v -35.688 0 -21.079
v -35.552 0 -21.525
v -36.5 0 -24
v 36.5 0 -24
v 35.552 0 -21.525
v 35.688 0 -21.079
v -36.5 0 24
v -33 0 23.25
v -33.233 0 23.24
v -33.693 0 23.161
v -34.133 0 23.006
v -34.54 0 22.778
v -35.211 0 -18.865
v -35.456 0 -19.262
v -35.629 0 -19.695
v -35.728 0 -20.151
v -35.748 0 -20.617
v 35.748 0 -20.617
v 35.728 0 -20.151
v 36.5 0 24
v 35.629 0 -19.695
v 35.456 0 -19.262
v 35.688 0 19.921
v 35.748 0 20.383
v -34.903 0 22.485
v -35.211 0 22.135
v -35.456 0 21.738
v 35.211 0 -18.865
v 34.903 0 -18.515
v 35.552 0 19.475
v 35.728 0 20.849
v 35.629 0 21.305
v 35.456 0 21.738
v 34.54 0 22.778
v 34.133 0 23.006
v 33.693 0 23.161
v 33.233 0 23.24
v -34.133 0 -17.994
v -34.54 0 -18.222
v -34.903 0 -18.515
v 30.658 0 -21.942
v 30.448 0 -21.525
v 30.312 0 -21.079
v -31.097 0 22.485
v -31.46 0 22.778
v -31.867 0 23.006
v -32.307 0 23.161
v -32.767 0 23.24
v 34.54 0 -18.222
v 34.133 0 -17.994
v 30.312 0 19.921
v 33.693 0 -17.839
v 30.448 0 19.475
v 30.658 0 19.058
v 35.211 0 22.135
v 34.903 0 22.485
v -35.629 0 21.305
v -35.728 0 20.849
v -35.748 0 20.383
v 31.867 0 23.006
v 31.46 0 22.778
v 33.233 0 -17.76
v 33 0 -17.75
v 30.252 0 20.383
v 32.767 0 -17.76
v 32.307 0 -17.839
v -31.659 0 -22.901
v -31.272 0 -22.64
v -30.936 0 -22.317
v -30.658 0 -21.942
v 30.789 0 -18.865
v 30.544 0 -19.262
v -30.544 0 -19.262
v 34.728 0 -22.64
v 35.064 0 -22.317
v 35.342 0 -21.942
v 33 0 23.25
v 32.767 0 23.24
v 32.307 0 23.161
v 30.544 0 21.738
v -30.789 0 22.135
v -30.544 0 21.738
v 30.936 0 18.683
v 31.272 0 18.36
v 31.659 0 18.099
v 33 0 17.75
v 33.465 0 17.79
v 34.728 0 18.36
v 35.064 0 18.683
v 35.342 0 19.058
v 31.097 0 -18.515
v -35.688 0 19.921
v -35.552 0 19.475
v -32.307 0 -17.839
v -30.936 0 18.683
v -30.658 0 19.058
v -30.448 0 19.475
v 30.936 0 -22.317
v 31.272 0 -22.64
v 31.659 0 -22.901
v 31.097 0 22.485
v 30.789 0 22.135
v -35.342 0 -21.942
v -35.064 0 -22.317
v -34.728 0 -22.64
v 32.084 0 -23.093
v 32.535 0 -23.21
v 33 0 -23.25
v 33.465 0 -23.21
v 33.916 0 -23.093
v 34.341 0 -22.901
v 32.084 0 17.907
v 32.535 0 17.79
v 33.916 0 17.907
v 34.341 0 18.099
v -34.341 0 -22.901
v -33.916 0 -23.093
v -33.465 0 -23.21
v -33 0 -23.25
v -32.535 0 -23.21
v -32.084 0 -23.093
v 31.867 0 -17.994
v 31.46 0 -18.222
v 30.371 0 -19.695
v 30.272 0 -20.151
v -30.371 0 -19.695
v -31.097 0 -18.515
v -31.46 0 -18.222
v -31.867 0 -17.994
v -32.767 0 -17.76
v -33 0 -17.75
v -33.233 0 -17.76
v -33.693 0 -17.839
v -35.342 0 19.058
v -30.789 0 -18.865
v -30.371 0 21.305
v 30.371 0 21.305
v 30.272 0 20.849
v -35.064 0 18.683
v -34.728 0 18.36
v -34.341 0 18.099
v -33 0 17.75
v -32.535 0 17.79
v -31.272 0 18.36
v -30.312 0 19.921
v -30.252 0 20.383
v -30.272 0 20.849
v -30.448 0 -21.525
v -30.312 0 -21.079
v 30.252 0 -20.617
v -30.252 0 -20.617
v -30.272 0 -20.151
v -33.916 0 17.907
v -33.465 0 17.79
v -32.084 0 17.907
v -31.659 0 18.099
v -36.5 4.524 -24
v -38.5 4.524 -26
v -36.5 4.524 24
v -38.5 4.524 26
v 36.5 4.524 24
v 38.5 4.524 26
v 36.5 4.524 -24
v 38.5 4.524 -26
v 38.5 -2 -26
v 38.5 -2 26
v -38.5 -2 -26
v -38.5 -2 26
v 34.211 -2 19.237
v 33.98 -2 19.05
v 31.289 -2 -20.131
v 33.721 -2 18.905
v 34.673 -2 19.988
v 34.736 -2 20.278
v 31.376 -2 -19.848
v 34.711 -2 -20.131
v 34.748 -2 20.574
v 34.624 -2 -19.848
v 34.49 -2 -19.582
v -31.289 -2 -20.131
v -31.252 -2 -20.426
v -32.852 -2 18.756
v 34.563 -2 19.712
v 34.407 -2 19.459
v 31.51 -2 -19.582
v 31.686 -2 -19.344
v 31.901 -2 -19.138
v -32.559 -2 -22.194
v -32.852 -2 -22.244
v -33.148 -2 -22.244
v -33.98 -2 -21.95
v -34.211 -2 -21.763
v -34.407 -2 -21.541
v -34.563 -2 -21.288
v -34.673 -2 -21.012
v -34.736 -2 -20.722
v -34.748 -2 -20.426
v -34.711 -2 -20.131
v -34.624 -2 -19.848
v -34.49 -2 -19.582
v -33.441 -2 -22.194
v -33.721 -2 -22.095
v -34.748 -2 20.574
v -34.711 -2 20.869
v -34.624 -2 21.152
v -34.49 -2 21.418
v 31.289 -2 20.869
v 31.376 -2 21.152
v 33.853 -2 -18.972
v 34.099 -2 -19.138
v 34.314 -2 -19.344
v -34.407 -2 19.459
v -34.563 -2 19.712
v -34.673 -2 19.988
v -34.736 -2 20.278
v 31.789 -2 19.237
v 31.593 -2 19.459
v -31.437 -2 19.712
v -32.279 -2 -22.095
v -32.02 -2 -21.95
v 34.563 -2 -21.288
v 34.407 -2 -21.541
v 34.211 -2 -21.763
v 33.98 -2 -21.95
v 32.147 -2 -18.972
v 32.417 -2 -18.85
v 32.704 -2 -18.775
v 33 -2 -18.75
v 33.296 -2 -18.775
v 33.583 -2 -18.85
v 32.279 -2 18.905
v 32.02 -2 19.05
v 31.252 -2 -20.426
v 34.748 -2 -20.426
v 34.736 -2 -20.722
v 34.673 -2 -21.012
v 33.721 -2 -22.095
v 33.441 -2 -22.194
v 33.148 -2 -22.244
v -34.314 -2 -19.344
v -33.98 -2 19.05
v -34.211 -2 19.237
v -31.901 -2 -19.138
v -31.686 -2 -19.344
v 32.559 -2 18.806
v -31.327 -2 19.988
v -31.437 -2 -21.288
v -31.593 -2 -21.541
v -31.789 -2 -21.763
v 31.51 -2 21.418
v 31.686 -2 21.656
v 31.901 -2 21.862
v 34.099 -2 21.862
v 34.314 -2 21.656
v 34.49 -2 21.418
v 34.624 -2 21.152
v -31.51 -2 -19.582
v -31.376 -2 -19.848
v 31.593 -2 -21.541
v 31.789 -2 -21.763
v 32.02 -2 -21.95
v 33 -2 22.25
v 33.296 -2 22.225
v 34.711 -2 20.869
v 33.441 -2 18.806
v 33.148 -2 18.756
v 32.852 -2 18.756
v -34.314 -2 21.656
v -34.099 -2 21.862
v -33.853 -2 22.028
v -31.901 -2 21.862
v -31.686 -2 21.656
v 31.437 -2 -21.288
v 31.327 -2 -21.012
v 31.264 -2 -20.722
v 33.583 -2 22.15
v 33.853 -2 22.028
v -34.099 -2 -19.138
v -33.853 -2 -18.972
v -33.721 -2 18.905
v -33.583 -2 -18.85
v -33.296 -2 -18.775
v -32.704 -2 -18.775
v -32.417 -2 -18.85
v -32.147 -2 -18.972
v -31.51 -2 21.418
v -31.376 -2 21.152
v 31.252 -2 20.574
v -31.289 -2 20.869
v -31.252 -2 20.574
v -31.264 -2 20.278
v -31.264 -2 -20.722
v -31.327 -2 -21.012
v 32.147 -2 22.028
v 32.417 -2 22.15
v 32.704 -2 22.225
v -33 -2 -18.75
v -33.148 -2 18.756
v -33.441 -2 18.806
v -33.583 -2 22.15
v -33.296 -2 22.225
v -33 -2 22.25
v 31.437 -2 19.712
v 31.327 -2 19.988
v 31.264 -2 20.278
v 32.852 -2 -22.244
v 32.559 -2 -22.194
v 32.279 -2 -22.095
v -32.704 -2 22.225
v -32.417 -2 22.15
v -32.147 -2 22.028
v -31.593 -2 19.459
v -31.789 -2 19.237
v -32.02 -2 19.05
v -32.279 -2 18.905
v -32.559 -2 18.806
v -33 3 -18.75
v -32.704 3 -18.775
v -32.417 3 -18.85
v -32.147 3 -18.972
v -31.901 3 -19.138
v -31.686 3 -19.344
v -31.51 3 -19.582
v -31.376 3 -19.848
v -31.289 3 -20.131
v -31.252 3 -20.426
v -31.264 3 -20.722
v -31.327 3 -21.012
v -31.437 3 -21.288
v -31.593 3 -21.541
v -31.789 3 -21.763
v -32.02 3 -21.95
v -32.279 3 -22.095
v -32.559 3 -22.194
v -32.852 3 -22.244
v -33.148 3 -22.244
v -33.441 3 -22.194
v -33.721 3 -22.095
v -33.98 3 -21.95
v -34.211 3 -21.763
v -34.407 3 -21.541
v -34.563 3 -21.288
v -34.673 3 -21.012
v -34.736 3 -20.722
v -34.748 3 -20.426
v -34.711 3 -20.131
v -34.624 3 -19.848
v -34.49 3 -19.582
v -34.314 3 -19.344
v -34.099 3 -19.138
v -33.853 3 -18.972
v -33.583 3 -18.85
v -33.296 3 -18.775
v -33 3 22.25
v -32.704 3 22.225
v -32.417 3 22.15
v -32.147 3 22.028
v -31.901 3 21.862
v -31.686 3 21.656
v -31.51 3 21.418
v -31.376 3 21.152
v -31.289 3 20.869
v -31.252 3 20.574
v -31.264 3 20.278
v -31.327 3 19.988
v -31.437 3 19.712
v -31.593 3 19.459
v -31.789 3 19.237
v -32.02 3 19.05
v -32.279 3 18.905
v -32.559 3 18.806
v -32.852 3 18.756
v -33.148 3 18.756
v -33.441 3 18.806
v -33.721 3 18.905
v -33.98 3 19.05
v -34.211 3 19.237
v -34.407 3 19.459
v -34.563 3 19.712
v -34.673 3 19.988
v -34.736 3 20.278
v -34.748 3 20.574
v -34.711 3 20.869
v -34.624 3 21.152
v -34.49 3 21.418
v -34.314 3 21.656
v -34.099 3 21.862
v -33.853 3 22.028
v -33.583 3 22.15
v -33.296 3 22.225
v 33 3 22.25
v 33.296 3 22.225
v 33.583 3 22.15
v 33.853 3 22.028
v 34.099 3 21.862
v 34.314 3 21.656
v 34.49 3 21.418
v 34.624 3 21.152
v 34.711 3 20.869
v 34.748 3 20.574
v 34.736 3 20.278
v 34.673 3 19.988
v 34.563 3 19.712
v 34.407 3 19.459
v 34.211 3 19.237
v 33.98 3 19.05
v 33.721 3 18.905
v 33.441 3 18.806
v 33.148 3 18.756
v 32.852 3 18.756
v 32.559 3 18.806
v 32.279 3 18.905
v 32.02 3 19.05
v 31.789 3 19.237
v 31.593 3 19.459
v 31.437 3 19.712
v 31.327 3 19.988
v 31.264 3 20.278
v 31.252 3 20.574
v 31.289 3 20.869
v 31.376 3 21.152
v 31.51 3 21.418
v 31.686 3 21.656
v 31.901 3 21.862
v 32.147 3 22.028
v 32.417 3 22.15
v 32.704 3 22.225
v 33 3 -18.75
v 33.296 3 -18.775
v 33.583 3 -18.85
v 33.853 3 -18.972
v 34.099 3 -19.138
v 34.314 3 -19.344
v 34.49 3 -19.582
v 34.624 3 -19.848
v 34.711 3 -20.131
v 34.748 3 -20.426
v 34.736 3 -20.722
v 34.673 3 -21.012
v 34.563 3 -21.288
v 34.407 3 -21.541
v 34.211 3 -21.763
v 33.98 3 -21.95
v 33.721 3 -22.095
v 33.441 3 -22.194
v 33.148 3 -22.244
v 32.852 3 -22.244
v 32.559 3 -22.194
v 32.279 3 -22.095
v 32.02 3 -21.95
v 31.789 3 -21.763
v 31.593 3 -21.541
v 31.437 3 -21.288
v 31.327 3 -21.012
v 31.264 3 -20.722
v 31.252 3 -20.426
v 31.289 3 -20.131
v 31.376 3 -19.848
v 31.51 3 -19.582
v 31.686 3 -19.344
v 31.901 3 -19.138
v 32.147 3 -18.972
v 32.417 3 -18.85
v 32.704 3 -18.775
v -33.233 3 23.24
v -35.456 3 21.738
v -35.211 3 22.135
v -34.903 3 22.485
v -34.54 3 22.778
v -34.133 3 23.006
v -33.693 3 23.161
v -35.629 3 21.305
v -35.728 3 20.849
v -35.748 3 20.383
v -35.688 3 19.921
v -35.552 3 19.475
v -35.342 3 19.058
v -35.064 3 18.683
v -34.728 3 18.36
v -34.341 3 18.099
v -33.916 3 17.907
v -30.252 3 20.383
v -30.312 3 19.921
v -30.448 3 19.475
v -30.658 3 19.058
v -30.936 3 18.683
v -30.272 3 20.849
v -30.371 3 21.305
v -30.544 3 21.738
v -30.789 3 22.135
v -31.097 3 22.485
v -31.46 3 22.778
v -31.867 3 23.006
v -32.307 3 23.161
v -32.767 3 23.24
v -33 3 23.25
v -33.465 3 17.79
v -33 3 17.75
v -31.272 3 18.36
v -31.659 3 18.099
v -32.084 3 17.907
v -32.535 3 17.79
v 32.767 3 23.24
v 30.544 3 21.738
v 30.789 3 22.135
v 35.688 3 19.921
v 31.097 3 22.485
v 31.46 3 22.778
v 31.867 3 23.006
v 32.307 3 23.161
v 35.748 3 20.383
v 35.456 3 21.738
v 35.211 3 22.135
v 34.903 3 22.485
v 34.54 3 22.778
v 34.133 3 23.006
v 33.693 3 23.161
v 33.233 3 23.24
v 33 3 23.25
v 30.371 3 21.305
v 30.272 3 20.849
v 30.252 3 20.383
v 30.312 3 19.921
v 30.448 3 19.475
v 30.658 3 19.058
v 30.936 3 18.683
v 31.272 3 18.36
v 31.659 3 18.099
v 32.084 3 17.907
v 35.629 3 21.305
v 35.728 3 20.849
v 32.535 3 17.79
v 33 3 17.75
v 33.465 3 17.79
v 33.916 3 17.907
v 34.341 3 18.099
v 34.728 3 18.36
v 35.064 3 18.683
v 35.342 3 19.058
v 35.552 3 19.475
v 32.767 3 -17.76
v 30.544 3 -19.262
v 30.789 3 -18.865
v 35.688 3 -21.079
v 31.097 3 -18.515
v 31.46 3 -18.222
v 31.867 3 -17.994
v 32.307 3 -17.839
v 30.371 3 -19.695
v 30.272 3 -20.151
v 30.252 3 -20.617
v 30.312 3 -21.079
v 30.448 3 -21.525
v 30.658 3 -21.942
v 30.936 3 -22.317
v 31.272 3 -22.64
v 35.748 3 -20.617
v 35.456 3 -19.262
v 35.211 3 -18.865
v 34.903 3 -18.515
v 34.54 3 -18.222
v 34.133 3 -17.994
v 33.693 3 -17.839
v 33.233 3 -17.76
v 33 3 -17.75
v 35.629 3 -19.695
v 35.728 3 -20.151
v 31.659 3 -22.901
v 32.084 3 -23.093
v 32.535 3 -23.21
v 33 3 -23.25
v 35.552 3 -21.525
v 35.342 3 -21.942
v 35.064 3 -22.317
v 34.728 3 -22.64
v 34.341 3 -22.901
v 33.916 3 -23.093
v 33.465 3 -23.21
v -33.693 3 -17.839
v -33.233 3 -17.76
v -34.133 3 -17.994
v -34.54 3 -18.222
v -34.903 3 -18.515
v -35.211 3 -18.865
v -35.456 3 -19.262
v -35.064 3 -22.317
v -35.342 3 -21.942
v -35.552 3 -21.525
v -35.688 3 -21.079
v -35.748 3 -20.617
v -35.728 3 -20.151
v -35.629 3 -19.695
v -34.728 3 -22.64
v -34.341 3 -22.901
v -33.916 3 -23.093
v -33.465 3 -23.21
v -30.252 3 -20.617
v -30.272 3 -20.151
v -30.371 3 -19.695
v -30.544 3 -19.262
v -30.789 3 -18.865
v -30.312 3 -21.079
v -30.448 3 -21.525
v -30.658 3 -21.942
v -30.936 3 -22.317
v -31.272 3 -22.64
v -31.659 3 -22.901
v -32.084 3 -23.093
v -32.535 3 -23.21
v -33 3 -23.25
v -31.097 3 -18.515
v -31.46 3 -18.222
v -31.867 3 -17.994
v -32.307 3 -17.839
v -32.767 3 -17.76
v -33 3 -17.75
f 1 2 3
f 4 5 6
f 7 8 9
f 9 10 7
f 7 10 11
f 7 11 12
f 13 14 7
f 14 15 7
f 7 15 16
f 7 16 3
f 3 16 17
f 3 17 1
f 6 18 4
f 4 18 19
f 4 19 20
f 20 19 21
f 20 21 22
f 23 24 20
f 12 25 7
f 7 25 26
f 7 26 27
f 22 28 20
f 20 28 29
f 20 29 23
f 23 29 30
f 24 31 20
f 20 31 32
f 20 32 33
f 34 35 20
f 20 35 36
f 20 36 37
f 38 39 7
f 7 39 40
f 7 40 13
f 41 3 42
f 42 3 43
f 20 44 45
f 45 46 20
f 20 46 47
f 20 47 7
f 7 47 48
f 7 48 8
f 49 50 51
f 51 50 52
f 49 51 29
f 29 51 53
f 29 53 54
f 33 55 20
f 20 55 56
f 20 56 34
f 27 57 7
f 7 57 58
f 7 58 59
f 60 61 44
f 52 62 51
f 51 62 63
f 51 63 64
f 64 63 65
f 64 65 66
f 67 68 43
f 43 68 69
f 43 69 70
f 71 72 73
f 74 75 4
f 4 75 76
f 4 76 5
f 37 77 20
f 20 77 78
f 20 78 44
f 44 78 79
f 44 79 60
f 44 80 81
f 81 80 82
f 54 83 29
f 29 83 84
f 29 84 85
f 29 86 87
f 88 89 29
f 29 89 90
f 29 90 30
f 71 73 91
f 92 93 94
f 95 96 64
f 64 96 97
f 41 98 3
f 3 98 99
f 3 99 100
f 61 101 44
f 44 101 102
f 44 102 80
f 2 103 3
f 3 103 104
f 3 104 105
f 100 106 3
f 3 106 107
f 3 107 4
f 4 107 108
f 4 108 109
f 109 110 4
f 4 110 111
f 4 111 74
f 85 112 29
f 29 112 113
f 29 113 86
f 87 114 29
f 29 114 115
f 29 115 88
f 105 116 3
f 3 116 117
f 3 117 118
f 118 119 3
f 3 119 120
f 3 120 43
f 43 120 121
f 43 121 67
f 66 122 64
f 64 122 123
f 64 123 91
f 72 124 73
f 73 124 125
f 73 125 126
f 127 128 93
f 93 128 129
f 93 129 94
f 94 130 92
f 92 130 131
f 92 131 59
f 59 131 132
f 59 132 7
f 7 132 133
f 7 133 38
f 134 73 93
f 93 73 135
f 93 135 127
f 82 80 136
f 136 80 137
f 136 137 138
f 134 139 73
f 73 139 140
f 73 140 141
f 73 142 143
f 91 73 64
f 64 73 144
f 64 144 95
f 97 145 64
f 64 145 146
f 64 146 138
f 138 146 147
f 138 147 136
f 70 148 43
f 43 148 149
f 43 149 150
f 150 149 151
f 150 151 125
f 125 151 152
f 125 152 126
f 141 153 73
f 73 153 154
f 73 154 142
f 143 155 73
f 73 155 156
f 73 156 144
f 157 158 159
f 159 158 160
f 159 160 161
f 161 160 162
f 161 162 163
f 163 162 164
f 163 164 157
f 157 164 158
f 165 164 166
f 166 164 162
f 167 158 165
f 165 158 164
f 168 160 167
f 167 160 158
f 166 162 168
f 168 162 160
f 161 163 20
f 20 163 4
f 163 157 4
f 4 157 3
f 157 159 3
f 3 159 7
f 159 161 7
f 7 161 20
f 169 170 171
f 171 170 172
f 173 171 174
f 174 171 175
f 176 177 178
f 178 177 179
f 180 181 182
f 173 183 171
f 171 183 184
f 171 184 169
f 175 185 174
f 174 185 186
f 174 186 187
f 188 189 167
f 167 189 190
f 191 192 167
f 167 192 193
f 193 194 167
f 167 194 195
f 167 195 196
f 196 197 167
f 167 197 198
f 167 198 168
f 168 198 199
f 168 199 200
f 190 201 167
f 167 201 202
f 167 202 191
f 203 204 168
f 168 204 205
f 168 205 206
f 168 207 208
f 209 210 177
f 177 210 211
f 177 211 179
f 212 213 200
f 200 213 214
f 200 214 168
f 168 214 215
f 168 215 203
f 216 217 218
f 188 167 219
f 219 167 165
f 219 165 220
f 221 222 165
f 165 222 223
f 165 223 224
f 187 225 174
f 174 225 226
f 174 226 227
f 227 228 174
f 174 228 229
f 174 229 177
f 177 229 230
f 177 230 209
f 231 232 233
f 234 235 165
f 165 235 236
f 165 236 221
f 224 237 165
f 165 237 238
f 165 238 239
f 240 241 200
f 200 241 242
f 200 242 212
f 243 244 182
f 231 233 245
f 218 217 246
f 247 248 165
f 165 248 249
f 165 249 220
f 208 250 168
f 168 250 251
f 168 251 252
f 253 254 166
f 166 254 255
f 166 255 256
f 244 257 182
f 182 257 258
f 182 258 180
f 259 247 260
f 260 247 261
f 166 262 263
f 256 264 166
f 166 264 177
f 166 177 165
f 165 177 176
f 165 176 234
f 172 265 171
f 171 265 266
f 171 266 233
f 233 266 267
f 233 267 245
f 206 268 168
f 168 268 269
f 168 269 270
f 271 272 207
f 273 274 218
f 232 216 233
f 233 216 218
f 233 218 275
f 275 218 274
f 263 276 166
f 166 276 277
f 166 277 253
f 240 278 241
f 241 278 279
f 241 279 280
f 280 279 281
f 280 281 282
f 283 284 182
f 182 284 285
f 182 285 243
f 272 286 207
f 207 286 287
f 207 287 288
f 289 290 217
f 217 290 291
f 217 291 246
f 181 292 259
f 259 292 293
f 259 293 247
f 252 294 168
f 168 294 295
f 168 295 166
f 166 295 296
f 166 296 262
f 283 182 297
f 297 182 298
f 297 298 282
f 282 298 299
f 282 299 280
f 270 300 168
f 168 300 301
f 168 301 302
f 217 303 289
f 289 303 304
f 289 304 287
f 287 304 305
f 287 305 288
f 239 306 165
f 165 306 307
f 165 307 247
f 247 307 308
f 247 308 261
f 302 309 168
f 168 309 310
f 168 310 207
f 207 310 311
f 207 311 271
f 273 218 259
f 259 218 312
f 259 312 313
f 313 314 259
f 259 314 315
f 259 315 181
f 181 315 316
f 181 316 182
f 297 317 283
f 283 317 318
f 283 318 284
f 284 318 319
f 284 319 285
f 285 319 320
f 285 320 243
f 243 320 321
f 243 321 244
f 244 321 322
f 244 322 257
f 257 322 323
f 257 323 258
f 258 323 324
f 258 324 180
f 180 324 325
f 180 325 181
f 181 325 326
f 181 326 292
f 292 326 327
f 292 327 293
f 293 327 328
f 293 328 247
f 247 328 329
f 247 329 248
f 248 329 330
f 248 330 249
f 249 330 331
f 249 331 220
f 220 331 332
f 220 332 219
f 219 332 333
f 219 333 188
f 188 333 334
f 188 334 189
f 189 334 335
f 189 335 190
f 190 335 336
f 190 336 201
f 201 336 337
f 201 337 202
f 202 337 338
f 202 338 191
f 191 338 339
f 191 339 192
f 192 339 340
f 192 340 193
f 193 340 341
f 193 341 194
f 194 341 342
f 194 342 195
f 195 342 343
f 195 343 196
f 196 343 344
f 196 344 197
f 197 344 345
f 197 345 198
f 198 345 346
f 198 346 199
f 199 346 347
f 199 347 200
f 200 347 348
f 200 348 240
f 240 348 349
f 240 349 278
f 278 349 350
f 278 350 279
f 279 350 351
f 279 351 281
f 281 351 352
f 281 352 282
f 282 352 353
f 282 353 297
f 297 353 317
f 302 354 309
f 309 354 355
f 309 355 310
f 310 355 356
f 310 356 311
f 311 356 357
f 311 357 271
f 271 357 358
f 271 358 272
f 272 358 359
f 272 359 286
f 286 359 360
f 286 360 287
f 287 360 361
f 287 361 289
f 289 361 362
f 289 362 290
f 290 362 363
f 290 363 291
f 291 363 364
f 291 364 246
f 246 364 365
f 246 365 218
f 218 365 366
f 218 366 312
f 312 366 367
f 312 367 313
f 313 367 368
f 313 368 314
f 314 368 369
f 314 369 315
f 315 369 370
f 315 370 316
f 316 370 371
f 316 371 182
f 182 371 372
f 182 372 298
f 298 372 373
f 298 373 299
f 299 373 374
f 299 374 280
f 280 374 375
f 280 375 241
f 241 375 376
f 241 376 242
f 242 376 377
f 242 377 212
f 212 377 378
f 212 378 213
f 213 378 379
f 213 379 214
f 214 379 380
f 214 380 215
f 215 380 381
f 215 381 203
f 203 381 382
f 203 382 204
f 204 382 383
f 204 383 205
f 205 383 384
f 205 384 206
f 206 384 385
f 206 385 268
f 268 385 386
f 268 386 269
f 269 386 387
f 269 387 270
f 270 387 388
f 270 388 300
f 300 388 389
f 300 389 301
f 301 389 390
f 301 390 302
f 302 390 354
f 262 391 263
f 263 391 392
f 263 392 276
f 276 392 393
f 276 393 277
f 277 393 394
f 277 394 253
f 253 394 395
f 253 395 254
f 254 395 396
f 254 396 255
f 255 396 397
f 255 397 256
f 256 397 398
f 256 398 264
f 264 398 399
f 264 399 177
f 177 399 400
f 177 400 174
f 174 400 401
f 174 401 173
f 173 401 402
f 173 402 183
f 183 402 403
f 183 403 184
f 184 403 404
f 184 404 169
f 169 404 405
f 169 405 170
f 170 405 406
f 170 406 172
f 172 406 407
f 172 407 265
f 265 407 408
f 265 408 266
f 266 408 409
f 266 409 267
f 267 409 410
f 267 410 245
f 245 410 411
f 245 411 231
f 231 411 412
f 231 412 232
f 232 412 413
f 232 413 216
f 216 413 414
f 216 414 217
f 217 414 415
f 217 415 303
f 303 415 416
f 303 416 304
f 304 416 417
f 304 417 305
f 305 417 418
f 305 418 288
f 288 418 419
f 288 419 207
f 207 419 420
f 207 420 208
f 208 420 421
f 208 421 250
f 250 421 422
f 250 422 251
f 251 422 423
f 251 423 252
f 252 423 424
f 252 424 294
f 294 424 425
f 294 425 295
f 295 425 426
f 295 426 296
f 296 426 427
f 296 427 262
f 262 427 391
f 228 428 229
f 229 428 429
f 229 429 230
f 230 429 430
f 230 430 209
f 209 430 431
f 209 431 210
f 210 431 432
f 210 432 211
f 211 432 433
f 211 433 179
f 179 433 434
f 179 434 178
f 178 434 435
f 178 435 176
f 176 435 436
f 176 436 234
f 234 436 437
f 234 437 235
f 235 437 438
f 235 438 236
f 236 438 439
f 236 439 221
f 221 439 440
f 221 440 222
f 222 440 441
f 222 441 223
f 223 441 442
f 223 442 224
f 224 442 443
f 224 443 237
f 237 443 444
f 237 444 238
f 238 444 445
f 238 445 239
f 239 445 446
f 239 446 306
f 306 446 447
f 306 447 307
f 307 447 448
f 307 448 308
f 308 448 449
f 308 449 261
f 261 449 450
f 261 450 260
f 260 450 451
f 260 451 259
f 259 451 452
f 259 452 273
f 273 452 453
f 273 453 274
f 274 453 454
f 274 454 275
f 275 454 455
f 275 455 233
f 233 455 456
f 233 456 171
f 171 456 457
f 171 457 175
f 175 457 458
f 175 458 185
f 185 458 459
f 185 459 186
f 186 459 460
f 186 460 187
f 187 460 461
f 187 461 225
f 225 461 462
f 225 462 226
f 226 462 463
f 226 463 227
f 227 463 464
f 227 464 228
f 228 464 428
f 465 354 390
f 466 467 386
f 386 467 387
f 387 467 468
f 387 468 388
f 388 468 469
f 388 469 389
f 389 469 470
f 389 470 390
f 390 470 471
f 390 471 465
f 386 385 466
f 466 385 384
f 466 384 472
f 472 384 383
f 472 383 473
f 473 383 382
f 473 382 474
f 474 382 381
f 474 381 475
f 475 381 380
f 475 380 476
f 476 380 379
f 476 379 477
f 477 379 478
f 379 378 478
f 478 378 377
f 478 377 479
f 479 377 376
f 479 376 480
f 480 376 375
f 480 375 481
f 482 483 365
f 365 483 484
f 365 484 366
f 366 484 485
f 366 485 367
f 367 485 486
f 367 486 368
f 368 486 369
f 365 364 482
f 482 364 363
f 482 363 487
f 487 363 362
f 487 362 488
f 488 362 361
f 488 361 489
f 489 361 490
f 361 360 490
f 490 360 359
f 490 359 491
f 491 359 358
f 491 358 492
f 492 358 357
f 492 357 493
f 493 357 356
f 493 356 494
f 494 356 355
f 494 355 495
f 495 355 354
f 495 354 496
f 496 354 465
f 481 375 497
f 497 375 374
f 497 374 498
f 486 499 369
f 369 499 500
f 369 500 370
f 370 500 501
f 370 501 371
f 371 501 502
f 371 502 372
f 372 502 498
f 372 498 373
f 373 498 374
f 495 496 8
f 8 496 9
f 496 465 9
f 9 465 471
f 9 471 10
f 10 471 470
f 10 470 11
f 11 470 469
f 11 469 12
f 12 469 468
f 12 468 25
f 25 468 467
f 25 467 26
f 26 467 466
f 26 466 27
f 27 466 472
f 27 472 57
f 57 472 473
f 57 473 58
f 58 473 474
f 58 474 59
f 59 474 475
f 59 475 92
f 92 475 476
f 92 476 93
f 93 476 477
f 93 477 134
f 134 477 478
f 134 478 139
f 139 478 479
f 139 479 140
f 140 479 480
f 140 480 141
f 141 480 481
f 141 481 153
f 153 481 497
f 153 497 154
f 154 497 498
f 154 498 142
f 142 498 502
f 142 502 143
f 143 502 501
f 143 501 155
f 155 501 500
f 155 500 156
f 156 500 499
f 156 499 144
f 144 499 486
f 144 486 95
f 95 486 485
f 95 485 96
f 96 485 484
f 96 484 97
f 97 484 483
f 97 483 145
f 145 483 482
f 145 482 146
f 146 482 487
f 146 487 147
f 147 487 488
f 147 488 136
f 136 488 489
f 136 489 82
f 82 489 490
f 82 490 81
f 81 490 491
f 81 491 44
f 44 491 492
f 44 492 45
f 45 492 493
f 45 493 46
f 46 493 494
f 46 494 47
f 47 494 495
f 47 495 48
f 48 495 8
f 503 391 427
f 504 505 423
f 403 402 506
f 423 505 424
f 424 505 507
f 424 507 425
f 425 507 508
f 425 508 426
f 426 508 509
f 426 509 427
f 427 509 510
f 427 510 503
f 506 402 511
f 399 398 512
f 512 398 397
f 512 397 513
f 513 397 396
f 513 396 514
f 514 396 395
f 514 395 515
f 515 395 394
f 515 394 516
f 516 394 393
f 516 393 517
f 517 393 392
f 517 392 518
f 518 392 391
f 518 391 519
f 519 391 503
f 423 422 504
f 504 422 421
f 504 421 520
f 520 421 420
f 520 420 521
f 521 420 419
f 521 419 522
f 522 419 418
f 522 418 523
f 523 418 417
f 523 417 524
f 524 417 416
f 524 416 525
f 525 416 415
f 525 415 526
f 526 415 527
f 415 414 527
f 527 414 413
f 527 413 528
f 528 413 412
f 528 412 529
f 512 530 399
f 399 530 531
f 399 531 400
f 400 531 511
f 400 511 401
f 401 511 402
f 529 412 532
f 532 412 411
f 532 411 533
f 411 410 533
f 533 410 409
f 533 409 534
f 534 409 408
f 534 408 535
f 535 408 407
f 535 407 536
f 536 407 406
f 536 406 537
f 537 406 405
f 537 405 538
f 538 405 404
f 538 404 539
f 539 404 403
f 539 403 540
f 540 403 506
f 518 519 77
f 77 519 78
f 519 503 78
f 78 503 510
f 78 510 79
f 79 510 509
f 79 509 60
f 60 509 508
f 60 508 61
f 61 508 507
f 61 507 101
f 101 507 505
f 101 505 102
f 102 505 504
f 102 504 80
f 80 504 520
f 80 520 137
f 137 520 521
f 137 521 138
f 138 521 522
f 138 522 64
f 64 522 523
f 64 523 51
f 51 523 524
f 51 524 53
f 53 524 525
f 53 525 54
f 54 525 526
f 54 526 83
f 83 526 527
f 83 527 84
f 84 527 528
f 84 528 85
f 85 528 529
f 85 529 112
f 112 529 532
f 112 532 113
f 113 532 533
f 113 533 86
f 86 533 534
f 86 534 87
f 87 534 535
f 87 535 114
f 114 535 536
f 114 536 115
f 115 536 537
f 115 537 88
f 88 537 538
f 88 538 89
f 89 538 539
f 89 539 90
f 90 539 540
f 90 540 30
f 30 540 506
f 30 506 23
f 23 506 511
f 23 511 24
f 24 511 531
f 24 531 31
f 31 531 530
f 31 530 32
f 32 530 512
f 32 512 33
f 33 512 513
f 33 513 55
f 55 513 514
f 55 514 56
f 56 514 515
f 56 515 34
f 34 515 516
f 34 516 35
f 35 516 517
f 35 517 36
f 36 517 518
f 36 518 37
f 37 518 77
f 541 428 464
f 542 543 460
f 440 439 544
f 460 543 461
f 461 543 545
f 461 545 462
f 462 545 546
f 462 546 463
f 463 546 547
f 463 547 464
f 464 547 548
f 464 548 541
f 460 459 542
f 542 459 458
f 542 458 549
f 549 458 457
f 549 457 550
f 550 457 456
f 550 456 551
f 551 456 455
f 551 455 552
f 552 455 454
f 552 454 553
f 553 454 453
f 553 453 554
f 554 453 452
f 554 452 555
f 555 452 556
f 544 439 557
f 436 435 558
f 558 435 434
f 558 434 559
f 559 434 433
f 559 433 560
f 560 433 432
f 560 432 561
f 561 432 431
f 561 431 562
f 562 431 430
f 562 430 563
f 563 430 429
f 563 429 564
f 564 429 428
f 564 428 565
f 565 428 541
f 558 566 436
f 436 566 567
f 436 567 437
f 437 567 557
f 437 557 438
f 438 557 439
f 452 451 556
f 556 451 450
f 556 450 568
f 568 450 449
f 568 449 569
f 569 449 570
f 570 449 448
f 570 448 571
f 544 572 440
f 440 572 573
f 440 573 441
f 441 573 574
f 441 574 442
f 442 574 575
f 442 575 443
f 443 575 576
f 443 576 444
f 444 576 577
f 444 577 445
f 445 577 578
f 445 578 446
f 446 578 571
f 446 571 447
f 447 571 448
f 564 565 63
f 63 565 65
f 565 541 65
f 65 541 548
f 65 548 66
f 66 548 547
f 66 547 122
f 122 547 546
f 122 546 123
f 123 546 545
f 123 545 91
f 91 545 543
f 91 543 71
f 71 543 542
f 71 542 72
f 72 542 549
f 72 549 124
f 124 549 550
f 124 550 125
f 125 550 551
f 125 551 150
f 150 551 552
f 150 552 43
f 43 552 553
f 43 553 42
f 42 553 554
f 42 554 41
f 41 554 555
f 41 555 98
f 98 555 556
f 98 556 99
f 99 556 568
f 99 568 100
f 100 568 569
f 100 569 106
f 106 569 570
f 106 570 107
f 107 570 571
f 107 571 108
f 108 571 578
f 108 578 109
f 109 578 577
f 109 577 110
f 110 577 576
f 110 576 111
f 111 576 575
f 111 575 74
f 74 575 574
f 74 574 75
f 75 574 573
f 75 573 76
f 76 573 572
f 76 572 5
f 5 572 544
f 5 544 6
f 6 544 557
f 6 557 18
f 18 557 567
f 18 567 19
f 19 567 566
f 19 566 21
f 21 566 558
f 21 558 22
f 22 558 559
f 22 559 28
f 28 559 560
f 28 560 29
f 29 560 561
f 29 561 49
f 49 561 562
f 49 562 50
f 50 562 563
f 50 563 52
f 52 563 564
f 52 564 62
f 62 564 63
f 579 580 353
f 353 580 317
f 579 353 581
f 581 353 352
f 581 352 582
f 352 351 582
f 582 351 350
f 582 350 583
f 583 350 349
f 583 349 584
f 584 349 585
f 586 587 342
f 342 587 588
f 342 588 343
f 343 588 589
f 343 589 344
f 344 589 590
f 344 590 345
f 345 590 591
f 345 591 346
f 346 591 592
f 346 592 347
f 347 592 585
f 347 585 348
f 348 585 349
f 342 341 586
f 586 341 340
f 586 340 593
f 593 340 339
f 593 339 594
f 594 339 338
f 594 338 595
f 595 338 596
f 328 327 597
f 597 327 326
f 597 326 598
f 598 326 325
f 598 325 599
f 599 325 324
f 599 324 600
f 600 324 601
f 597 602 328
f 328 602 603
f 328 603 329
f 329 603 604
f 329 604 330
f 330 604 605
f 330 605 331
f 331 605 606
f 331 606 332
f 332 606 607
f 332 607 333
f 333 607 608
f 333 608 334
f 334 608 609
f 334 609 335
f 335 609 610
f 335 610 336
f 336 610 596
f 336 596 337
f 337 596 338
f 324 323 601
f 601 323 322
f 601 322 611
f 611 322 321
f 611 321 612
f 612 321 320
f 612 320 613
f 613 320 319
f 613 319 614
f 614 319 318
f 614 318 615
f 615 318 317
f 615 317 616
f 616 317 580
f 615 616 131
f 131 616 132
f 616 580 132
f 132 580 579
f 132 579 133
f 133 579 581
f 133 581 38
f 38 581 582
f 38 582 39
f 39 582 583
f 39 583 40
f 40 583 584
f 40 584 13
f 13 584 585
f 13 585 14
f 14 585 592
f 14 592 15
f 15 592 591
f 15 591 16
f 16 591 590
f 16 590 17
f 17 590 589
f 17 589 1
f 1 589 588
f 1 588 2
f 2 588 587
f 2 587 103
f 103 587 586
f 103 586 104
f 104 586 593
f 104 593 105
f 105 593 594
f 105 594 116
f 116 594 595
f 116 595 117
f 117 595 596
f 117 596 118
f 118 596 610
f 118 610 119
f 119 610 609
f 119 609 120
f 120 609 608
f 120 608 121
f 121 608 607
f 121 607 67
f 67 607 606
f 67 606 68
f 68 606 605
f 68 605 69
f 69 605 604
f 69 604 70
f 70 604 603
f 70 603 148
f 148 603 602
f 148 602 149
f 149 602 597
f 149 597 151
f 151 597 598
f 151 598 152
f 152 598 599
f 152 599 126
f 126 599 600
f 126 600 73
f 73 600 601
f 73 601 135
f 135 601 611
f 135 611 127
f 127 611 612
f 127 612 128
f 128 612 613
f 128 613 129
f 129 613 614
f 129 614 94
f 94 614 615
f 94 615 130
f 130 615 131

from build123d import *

# Parameters (mm, degrees)
SKETCH1_W           = 77
SKETCH1_H           = 52
SKETCH1_W_2         = 73
SKETCH1_H_2         = 48
BOSS_EXTRUDE1_DEPTH = 4.524
SKETCH2_W           = 77
SKETCH2_H           = 52
BOSS_EXTRUDE2_DEPTH = 2
SKETCH3_R           = 1.75
CUT_EXTRUDE1_DEPTH  = 2
BOSS_EXTRUDE3_START = 3
SKETCH4_R           = 2.75
SKETCH4_R_2         = 1.75
BOSS_EXTRUDE3_DEPTH = 3


with BuildPart() as part:
    # Sketch1 → Boss-Extrude1 (new body)
    with BuildSketch(Plane(origin=(0, 0, 0), x_dir=(1, 0, 0), z_dir=(0, 1, 0))):
        Rectangle(SKETCH1_W, SKETCH1_H)
        Rectangle(SKETCH1_W_2, SKETCH1_H_2, mode=Mode.SUBTRACT)
    extrude(amount=BOSS_EXTRUDE1_DEPTH)

    # Sketch2 → Boss-Extrude2 (add)
    with BuildSketch(Plane.XZ):
        Rectangle(SKETCH2_W, SKETCH2_H)
    extrude(amount=BOSS_EXTRUDE2_DEPTH)

    # Sketch3 → Cut-Extrude1 (cut)
    with BuildSketch(Plane(origin=(0, 0, 0), x_dir=(1, 0, 0), z_dir=(0, 1, 0))):
        with Locations(Location((-33, 20.5, 0), (0, 0, 270))):
            Circle(SKETCH3_R)
        with Locations(Location((33, 20.5, 0), (0, 0, 270))):
            Circle(SKETCH3_R)
        with Locations(Location((33, -20.5, 0), (0, 0, 270))):
            Circle(SKETCH3_R)
        with Locations(Location((-33, -20.5, 0), (0, 0, 270))):
            Circle(SKETCH3_R)
    extrude(amount=-CUT_EXTRUDE1_DEPTH, mode=Mode.SUBTRACT)

    # Sketch4 → Boss-Extrude3 (add)
    # profile 1 of 4: a face of its own
    with BuildSketch(Plane(origin=(0, 0, 0), x_dir=(1, 0, 0), z_dir=(0, 1, 0)).offset(BOSS_EXTRUDE3_START)):
        with Locations(Location((-33, -20.5, 0), (0, 0, 270))):
            Circle(SKETCH4_R)
        with Locations(Location((-33, -20.5, 0), (0, 0, 270))):
            Circle(SKETCH4_R_2, mode=Mode.SUBTRACT)
    # profile 2 of 4: a face of its own
    with BuildSketch(Plane(origin=(0, 0, 0), x_dir=(1, 0, 0), z_dir=(0, 1, 0)).offset(BOSS_EXTRUDE3_START)):
        with Locations(Location((33, -20.5, 0), (0, 0, 270))):
            Circle(SKETCH4_R)
        with Locations(Location((33, -20.5, 0), (0, 0, 270))):
            Circle(SKETCH4_R_2, mode=Mode.SUBTRACT)
    # profile 3 of 4: a face of its own
    with BuildSketch(Plane(origin=(0, 0, 0), x_dir=(1, 0, 0), z_dir=(0, 1, 0)).offset(BOSS_EXTRUDE3_START)):
        with Locations(Location((33, 20.5, 0), (0, 0, 270))):
            Circle(SKETCH4_R)
        with Locations(Location((33, 20.5, 0), (0, 0, 270))):
            Circle(SKETCH4_R_2, mode=Mode.SUBTRACT)
    # profile 4 of 4: a face of its own
    with BuildSketch(Plane(origin=(0, 0, 0), x_dir=(1, 0, 0), z_dir=(0, 1, 0)).offset(BOSS_EXTRUDE3_START)):
        with Locations(Location((-33, 20.5, 0), (0, 0, 270))):
            Circle(SKETCH4_R)
        with Locations(Location((-33, 20.5, 0), (0, 0, 270))):
            Circle(SKETCH4_R_2, mode=Mode.SUBTRACT)
    extrude(amount=-BOSS_EXTRUDE3_DEPTH)


solid = part.part
